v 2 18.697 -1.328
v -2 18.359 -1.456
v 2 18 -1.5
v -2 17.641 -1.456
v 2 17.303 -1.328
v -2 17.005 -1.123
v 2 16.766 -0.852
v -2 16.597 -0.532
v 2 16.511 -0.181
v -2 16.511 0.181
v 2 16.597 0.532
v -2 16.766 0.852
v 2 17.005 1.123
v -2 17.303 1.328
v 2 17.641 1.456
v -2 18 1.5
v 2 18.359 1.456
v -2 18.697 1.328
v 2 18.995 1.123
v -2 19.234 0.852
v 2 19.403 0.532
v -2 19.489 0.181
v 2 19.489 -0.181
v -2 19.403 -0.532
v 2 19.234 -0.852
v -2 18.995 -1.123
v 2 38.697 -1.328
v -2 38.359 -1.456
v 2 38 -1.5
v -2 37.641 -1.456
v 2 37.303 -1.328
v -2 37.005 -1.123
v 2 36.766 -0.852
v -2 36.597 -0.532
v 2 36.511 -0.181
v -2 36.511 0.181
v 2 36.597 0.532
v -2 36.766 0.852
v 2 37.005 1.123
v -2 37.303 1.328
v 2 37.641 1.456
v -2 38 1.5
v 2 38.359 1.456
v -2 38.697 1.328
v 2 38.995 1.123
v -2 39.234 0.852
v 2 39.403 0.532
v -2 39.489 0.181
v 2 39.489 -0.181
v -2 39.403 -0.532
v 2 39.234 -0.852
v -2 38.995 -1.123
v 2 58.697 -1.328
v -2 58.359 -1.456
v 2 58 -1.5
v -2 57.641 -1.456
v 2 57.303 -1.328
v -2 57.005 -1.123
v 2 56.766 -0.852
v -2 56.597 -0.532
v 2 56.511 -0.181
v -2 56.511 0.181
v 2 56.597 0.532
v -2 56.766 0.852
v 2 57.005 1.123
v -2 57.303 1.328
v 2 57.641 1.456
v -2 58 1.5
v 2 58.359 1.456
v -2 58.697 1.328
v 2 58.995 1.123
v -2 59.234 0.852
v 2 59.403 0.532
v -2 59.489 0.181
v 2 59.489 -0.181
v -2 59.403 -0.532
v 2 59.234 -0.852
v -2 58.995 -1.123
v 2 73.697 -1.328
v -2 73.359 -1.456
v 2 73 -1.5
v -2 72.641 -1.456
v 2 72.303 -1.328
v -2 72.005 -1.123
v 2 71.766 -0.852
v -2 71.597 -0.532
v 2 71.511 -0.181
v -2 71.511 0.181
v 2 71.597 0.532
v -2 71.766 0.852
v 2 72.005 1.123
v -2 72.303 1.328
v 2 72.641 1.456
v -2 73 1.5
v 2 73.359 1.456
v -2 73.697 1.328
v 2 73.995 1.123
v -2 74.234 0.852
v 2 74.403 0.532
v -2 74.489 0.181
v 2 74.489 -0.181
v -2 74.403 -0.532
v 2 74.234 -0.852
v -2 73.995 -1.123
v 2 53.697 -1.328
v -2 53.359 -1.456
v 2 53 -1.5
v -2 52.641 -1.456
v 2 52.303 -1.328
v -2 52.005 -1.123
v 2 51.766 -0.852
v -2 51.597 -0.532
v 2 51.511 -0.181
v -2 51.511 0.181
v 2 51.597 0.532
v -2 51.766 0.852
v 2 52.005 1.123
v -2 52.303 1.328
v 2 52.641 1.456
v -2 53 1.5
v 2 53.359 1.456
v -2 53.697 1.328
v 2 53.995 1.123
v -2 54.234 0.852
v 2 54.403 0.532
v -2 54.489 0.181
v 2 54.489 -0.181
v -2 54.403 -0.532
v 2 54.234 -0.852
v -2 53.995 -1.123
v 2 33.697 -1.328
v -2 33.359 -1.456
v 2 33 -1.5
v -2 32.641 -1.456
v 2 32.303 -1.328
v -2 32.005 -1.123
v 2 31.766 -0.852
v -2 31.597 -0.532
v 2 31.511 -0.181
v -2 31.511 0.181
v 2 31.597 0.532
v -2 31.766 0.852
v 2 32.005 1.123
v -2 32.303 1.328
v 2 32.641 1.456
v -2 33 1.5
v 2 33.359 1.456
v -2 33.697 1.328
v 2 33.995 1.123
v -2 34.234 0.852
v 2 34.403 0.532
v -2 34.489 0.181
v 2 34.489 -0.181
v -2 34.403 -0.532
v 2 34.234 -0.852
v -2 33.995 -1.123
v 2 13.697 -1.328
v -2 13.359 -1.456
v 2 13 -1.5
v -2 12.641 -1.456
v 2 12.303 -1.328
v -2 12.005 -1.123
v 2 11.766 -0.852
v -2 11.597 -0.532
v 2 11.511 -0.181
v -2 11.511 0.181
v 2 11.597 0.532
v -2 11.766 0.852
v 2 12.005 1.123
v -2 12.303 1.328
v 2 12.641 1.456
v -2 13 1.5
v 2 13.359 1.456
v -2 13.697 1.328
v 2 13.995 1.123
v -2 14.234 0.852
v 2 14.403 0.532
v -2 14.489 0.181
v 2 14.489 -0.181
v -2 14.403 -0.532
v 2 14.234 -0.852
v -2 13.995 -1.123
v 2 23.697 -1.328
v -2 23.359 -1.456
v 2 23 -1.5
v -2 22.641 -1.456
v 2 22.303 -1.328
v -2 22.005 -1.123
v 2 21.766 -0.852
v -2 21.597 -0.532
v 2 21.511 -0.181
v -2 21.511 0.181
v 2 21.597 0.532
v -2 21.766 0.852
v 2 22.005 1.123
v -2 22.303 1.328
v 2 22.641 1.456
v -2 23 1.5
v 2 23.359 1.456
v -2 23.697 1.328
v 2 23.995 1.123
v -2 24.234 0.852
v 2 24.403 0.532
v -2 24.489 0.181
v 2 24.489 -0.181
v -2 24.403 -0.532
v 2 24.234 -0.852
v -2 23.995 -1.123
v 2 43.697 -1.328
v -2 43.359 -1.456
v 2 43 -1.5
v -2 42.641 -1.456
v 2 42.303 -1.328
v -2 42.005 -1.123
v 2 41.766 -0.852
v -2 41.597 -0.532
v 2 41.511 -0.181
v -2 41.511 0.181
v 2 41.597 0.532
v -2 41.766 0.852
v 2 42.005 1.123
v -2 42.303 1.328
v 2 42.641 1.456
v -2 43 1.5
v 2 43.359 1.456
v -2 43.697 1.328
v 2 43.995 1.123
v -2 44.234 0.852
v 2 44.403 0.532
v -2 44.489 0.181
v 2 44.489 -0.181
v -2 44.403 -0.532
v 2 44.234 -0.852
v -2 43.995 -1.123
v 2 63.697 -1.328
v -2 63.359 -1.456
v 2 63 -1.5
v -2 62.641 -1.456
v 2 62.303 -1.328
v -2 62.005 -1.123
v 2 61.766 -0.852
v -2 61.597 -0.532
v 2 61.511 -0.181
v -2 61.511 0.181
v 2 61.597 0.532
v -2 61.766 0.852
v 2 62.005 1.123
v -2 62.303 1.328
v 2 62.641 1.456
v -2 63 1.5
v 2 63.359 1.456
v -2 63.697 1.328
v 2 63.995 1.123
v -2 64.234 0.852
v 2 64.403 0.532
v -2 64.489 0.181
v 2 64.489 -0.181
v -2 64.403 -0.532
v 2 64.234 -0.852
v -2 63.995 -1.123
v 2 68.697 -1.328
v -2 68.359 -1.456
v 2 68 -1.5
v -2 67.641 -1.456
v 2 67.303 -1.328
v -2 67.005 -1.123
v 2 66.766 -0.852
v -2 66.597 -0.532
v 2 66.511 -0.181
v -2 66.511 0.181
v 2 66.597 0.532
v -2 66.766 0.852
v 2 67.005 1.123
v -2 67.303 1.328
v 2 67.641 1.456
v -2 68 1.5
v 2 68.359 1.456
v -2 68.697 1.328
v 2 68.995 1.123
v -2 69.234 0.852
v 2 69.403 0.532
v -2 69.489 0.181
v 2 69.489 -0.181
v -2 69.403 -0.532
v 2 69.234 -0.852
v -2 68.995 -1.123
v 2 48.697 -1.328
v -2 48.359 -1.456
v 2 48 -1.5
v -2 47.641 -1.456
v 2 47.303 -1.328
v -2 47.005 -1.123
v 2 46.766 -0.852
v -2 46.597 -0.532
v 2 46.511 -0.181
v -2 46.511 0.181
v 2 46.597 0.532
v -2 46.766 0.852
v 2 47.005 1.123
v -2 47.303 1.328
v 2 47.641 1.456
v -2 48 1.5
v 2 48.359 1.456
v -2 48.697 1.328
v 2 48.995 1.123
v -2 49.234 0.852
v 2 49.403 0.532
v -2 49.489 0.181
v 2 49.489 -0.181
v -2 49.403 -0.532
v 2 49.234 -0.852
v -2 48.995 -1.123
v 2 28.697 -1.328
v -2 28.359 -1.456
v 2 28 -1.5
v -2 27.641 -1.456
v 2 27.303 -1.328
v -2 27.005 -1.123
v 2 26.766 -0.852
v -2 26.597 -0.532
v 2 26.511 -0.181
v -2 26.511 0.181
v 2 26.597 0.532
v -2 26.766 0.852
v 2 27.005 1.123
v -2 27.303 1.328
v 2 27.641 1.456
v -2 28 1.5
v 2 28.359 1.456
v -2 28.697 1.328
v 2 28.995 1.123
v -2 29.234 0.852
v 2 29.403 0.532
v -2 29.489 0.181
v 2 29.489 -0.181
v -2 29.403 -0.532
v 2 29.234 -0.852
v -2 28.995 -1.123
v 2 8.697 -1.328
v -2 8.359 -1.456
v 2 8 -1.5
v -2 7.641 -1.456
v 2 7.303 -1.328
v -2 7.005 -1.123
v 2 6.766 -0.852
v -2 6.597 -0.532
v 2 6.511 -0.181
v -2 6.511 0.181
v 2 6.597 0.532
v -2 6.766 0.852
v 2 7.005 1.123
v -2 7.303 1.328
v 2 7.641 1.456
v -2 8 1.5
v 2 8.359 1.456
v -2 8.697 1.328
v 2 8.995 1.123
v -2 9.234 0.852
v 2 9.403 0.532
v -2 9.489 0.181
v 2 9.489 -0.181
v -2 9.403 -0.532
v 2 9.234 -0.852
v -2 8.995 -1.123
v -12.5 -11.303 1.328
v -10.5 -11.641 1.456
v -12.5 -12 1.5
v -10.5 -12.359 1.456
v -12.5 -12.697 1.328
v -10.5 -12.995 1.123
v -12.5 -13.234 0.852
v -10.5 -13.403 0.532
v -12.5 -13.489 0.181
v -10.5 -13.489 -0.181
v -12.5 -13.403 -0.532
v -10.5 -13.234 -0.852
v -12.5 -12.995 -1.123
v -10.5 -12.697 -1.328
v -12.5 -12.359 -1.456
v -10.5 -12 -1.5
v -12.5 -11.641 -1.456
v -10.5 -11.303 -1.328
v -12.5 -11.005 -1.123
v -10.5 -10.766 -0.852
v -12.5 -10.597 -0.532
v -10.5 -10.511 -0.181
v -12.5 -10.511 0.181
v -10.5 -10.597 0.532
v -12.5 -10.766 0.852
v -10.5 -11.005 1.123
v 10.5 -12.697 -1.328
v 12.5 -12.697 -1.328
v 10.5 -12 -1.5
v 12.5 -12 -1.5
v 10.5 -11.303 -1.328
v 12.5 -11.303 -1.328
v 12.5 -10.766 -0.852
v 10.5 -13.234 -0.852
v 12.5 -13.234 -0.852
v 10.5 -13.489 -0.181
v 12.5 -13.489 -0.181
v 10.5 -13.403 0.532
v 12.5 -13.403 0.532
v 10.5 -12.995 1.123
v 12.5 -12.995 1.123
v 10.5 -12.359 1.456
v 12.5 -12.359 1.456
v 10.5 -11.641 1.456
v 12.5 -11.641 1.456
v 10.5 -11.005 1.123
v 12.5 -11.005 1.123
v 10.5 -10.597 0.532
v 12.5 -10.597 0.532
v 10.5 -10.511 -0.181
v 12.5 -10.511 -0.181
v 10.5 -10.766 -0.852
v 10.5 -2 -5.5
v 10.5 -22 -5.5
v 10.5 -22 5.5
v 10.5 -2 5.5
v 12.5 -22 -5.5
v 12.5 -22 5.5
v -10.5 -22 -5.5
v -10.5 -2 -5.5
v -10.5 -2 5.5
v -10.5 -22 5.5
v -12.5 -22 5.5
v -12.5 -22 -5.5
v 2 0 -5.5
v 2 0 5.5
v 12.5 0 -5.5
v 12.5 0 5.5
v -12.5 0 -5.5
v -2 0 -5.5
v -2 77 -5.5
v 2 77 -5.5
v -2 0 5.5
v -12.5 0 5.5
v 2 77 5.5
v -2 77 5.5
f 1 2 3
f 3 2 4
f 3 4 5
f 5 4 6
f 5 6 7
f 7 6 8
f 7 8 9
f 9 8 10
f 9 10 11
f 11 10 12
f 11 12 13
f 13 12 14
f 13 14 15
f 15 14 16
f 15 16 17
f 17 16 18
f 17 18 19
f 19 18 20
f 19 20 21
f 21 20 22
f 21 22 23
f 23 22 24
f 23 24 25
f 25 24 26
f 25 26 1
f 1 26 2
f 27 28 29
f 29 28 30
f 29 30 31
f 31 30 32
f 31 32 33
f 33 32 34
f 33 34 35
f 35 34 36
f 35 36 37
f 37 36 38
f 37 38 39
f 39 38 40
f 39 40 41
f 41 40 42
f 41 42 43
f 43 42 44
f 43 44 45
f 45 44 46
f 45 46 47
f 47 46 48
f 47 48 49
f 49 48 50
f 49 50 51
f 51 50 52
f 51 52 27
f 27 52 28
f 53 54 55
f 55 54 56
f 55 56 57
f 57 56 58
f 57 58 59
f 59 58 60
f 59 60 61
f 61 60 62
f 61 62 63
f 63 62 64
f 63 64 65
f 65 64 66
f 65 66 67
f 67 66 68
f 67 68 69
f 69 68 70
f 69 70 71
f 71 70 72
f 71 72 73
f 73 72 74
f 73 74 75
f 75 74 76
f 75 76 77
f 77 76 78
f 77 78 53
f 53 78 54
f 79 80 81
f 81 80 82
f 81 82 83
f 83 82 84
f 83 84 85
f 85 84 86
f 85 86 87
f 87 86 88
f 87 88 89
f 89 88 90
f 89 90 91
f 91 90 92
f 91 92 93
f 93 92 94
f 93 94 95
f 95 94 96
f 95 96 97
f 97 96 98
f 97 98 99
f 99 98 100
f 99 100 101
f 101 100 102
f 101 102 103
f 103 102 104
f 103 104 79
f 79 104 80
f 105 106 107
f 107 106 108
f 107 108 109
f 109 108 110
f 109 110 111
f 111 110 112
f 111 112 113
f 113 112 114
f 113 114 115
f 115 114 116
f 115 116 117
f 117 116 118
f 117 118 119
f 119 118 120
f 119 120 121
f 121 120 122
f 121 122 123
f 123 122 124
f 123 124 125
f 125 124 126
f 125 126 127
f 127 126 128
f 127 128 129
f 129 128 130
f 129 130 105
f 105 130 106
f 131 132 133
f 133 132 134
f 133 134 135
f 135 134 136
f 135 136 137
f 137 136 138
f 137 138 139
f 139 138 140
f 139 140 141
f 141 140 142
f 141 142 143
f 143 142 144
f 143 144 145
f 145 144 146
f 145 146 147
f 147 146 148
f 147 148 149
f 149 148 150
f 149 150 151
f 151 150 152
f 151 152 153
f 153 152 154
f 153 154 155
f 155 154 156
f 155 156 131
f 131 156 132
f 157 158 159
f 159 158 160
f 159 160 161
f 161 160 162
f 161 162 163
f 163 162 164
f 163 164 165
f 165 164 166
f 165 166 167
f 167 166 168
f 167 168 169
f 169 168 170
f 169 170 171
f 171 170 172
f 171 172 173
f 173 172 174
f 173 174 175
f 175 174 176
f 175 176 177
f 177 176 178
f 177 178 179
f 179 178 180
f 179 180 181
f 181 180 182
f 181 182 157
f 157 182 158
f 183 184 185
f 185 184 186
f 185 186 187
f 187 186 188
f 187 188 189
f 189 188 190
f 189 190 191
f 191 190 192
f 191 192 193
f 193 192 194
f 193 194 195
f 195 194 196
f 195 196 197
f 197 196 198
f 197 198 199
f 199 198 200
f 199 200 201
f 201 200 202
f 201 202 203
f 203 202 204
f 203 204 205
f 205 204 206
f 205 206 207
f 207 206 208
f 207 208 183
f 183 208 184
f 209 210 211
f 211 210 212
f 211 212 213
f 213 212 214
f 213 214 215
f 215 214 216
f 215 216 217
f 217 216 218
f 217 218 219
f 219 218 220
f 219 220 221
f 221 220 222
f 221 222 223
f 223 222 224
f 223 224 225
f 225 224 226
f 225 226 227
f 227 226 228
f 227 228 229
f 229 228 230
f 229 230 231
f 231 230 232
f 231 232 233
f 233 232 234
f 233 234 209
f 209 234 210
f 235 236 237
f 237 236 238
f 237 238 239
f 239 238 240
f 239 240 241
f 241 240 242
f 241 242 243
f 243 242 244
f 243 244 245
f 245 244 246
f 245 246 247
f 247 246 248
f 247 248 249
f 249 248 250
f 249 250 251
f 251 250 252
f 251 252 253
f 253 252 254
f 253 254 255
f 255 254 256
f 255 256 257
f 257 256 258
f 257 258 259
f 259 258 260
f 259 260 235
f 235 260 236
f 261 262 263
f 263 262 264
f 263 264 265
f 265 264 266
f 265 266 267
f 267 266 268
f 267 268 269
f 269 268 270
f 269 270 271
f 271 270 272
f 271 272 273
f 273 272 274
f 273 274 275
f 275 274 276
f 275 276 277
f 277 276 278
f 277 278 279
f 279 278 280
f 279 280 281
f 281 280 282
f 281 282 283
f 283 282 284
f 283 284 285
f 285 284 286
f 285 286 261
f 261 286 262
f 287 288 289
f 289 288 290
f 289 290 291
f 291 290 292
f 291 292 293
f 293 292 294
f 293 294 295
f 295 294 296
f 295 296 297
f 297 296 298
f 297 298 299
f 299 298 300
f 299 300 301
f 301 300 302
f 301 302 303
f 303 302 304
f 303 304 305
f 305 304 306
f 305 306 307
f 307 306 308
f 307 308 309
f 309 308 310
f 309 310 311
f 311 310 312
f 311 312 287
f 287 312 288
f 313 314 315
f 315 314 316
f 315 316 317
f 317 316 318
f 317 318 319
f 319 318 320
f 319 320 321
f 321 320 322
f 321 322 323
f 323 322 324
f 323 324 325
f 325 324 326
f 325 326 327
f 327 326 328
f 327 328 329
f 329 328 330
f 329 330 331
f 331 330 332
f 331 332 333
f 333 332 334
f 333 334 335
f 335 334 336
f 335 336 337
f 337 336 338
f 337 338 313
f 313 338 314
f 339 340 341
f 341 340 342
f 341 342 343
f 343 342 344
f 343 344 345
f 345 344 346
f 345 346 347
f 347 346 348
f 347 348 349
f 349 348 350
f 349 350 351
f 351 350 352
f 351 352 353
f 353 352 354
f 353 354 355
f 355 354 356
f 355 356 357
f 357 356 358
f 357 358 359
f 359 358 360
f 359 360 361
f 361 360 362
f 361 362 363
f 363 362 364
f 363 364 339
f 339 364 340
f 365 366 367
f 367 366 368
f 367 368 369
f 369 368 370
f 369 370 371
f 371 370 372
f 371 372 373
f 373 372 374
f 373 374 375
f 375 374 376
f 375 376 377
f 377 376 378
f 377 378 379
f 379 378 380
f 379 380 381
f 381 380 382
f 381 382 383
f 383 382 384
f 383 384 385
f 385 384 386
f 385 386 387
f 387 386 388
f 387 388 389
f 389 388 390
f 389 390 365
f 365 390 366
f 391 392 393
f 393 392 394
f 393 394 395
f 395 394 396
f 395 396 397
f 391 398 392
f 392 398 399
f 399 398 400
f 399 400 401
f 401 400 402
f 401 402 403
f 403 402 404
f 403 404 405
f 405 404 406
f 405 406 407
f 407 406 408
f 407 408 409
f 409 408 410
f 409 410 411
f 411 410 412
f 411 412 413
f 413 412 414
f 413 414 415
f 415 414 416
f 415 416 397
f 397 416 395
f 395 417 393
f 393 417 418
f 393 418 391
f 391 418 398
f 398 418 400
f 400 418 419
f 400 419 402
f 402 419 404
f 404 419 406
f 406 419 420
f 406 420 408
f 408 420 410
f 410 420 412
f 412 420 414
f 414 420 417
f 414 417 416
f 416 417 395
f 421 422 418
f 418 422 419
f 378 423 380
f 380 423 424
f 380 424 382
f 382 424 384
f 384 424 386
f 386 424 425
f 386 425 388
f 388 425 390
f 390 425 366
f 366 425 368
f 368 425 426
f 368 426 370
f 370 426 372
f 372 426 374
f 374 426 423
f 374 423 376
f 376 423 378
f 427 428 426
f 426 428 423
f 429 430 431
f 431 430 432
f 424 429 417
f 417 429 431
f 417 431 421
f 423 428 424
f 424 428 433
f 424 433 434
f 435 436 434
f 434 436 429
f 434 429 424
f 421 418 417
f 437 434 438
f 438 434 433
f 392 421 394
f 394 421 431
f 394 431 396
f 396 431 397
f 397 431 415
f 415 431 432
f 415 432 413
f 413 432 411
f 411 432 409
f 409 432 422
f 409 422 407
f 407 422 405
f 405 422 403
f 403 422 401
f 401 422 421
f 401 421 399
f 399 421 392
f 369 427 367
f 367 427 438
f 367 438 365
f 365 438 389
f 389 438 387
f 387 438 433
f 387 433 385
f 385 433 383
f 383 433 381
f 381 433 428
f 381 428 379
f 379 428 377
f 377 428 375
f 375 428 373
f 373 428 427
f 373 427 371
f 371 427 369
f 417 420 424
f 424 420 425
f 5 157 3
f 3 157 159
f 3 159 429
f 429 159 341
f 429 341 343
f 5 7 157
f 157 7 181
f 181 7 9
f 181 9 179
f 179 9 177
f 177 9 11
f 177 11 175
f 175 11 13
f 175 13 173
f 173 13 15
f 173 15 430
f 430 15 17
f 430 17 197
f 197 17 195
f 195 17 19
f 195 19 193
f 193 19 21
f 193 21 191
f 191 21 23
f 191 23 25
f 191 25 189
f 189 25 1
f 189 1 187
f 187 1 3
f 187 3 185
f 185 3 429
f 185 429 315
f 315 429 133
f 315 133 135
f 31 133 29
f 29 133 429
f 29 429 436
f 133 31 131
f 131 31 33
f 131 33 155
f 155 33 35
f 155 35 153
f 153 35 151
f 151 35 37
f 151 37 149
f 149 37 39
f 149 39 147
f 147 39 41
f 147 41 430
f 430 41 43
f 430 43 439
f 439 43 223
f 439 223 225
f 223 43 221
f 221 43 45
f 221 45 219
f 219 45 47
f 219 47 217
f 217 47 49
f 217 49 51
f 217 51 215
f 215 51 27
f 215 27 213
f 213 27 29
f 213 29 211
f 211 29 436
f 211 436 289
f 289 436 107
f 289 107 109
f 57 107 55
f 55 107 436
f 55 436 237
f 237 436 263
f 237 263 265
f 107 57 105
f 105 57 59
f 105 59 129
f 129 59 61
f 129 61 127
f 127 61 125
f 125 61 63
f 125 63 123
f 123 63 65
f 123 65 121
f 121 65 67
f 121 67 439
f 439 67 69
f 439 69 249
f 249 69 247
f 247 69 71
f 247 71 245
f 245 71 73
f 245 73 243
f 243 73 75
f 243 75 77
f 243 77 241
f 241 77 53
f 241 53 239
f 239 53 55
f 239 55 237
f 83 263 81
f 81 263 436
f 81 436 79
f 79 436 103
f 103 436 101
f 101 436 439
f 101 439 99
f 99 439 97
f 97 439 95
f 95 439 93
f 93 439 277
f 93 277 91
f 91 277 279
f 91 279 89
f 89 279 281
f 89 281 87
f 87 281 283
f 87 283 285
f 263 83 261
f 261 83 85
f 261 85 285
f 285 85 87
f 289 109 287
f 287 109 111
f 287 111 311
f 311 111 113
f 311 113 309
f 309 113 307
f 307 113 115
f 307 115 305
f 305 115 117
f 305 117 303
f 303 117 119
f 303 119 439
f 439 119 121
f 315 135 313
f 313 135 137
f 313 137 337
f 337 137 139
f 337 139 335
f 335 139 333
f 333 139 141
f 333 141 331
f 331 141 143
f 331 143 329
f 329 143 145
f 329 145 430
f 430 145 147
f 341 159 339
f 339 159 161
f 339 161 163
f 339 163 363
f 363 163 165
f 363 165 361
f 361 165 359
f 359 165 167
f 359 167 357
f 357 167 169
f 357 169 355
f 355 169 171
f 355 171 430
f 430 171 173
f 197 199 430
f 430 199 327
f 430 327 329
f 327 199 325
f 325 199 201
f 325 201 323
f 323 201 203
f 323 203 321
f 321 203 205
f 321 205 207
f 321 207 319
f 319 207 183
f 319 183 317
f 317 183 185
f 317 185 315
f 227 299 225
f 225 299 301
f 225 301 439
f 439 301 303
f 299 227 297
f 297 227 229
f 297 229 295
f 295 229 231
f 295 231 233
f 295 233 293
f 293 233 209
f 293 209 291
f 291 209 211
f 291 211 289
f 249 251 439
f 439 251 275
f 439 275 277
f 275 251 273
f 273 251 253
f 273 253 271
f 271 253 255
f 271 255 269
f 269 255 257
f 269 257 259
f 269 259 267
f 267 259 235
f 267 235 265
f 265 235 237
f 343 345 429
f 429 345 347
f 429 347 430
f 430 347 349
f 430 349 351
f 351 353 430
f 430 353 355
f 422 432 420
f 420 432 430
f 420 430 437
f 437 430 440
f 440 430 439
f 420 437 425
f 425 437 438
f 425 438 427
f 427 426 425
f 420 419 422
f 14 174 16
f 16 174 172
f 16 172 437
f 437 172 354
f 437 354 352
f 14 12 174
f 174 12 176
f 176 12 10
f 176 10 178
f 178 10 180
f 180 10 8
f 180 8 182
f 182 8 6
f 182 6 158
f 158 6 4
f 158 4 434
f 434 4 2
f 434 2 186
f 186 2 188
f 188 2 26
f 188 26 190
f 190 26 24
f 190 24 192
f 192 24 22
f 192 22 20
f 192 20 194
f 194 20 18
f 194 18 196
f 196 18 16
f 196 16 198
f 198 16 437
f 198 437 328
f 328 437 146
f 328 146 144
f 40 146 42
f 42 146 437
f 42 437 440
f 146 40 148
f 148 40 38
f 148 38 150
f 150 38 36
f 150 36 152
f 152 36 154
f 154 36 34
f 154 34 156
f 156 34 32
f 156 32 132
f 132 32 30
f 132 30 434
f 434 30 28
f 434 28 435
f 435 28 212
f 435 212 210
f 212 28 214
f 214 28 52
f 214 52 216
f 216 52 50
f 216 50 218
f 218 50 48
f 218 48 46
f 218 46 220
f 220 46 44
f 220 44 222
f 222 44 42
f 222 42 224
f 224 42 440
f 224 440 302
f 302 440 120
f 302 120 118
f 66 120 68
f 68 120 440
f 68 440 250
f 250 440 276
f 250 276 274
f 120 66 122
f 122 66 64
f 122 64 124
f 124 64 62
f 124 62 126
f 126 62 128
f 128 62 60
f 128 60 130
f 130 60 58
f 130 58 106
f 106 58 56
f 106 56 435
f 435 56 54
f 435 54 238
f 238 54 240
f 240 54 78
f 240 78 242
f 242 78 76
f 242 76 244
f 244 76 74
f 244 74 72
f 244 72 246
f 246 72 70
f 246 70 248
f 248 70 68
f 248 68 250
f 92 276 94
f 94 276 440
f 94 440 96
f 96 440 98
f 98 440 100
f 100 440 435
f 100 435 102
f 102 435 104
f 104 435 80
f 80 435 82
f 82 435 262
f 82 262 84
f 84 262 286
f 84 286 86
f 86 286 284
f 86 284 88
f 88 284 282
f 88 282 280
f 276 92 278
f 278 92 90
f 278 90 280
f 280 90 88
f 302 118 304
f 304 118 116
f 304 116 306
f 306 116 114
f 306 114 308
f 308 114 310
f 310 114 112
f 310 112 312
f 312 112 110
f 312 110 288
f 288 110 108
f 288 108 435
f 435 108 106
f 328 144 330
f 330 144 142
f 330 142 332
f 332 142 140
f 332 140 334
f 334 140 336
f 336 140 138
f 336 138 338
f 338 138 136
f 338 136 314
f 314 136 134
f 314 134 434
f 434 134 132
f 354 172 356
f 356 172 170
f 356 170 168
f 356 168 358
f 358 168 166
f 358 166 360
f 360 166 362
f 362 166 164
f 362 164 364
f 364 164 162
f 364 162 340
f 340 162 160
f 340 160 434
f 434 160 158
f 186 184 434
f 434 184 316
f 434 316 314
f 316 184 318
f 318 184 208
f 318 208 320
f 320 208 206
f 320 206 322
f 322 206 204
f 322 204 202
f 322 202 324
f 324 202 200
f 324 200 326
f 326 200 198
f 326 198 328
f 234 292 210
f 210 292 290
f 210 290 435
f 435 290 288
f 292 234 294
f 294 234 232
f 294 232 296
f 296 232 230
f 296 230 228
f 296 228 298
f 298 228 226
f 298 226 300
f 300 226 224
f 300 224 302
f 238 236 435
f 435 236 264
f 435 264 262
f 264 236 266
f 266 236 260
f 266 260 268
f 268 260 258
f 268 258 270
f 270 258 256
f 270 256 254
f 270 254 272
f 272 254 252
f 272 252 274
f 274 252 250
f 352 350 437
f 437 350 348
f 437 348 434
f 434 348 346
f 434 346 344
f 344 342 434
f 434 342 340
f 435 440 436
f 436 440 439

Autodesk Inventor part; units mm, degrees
ref_plane "YZ Plane" through (0, 0, 0) normal (1, 0, 0) x (0, 1, 0)
ref_plane "XZ Plane" through (0, 0, 0) normal (0, 1, 0) x (-1, 0, 0)
ref_plane "XY Plane" through (0, 0, 0) normal (0, 0, 1) x (1, 0, 0)
sketch "스케치4" plane through (0, 0, 0) normal (0, 1, 0) x (-1, 0, 0)
  line L0 (-2, 5.5) -> (-2, -5.5)
  line L1 (-2, -5.5) -> (2, -5.5)
  line L2 (2, -5.5) -> (2, 5.5)
  line L3 (2, 5.5) -> (-2, 5.5)
  line L4 (-2, 5.5) -> (2, -5.5) construction
  line L5 (-2, -5.5) -> (2, 5.5) construction
  point P0 (0, 0)
  point P1 (0, 0)
  dimension "d12" = 11
  dimension "d13" = 4
extrude "돌출3" add sketch "스케치4" along normal blind 77
sketch "스케치5" plane through (0, 0, 0) normal (0, -1, 0) x (1, 0, 0)
  line L0 (-10.5, -5.5) -> (10.5, -5.5)
  line L1 (10.5, -5.5) -> (10.5, 5.5)
  line L2 (10.5, 5.5) -> (-10.5, 5.5)
  line L3 (-10.5, 5.5) -> (-10.5, -5.5)
  line L4 (-10.5, -5.5) -> (10.5, 5.5) construction
  line L5 (10.5, -5.5) -> (-10.5, 5.5) construction
  line L6 (0, 5.5) -> (0, -5.5) construction
  line L7 (10.5, 5.5) -> (12.5, 5.5)
  line L8 (12.5, 5.5) -> (12.5, -5.5)
  line L9 (12.5, -5.5) -> (10.5, -5.5)
  line L10 (-10.5, 5.5) -> (-12.5, 5.5)
  line L11 (-12.5, 5.5) -> (-12.5, -5.5)
  line L12 (-12.5, -5.5) -> (-10.5, -5.5)
  line L13 (-22.4262, 19.8) -> (40.7349, 19.8) construction
  point P0 (0, 0)
  point P1 (0, 0)
  dimension "d16" = 21
  dimension "d17" = 11
  dimension "d18" = 2
  dimension "d43" = 19.8
extrude "돌출4" add sketch "스케치5" along normal blind 2
extrude "돌출5" add sketch "스케치5" along normal blind 22 contours L12 L11 L10 L3 | L1 L7 L8 L9
sketch "스케치6" plane through (-12.5, 0, -5.5) normal (-1, 0, 0) x (0, 0, 1)
  line L0 (11, 0) -> (0, 0) projected
  line L1 (0, 0) -> (0, -22) projected
  line L2 (11, -22) -> (0, -22) projected
  line L3 (11, 0) -> (11, -22) projected
  circle A0 centre (5.5, -12) radius 1.5
  point P0 (5.5, 0)
  dimension "d23" = 3
  dimension "d24" = 10
extrude "돌출6" cut sketch "스케치6" against normal through all contours A0
sketch "스케치7" plane through (-2, 77, -5.5) normal (-1, 0, 0) x (0, 0, 1)
  line L0 (0, -77) -> (11, -77) projected
  line L1 (11, -77) -> (11, 0) projected
  line L2 (0, 0) -> (11, 0) projected
  line L3 (0, -77) -> (0, 0) projected
  line L4 (0, -73) -> (11, -73) construction
  line L5 (0, -4) -> (11, -4) construction
  line L6 (0, -69) -> (11, -69) construction
  circle A0 centre (5.5, -4) radius 1.5
  circle A1 centre (5.5, -69) radius 1.5
  line L7 (5.5, -69) -> (5.5, -4) construction
  circle A2 centre (5.5, -64) radius 1.5
  circle A3 centre (5.5, -59) radius 1.5
  circle A4 centre (5.5, -54) radius 1.5
  circle A5 centre (5.5, -49) radius 1.5
  circle A6 centre (5.5, -44) radius 1.5
  circle A7 centre (5.5, -39) radius 1.5
  circle A8 centre (5.5, -34) radius 1.5
  circle A9 centre (5.5, -29) radius 1.5
  circle A10 centre (5.5, -24) radius 1.5
  circle A11 centre (5.5, -19) radius 1.5
  circle A12 centre (5.5, -14) radius 1.5
  circle A13 centre (5.5, -9) radius 1.5
  point P0 (5.5, -77)
  dimension "d27" = 4
  dimension "d28" = 4
  dimension "d29" = 4
  dimension "d30" = 3
  dimension "d31" = 5.5
  dimension "d32" = 3
  dimension "d35" = 5
extrude "돌출7" cut sketch "스케치7" against normal through all contours A0 | A1 | A2 | A3 | A4 | A5 | A6 | A7 | A8 | A9 | A10 | A11 | A12 | A13
properties part number "catcher"
